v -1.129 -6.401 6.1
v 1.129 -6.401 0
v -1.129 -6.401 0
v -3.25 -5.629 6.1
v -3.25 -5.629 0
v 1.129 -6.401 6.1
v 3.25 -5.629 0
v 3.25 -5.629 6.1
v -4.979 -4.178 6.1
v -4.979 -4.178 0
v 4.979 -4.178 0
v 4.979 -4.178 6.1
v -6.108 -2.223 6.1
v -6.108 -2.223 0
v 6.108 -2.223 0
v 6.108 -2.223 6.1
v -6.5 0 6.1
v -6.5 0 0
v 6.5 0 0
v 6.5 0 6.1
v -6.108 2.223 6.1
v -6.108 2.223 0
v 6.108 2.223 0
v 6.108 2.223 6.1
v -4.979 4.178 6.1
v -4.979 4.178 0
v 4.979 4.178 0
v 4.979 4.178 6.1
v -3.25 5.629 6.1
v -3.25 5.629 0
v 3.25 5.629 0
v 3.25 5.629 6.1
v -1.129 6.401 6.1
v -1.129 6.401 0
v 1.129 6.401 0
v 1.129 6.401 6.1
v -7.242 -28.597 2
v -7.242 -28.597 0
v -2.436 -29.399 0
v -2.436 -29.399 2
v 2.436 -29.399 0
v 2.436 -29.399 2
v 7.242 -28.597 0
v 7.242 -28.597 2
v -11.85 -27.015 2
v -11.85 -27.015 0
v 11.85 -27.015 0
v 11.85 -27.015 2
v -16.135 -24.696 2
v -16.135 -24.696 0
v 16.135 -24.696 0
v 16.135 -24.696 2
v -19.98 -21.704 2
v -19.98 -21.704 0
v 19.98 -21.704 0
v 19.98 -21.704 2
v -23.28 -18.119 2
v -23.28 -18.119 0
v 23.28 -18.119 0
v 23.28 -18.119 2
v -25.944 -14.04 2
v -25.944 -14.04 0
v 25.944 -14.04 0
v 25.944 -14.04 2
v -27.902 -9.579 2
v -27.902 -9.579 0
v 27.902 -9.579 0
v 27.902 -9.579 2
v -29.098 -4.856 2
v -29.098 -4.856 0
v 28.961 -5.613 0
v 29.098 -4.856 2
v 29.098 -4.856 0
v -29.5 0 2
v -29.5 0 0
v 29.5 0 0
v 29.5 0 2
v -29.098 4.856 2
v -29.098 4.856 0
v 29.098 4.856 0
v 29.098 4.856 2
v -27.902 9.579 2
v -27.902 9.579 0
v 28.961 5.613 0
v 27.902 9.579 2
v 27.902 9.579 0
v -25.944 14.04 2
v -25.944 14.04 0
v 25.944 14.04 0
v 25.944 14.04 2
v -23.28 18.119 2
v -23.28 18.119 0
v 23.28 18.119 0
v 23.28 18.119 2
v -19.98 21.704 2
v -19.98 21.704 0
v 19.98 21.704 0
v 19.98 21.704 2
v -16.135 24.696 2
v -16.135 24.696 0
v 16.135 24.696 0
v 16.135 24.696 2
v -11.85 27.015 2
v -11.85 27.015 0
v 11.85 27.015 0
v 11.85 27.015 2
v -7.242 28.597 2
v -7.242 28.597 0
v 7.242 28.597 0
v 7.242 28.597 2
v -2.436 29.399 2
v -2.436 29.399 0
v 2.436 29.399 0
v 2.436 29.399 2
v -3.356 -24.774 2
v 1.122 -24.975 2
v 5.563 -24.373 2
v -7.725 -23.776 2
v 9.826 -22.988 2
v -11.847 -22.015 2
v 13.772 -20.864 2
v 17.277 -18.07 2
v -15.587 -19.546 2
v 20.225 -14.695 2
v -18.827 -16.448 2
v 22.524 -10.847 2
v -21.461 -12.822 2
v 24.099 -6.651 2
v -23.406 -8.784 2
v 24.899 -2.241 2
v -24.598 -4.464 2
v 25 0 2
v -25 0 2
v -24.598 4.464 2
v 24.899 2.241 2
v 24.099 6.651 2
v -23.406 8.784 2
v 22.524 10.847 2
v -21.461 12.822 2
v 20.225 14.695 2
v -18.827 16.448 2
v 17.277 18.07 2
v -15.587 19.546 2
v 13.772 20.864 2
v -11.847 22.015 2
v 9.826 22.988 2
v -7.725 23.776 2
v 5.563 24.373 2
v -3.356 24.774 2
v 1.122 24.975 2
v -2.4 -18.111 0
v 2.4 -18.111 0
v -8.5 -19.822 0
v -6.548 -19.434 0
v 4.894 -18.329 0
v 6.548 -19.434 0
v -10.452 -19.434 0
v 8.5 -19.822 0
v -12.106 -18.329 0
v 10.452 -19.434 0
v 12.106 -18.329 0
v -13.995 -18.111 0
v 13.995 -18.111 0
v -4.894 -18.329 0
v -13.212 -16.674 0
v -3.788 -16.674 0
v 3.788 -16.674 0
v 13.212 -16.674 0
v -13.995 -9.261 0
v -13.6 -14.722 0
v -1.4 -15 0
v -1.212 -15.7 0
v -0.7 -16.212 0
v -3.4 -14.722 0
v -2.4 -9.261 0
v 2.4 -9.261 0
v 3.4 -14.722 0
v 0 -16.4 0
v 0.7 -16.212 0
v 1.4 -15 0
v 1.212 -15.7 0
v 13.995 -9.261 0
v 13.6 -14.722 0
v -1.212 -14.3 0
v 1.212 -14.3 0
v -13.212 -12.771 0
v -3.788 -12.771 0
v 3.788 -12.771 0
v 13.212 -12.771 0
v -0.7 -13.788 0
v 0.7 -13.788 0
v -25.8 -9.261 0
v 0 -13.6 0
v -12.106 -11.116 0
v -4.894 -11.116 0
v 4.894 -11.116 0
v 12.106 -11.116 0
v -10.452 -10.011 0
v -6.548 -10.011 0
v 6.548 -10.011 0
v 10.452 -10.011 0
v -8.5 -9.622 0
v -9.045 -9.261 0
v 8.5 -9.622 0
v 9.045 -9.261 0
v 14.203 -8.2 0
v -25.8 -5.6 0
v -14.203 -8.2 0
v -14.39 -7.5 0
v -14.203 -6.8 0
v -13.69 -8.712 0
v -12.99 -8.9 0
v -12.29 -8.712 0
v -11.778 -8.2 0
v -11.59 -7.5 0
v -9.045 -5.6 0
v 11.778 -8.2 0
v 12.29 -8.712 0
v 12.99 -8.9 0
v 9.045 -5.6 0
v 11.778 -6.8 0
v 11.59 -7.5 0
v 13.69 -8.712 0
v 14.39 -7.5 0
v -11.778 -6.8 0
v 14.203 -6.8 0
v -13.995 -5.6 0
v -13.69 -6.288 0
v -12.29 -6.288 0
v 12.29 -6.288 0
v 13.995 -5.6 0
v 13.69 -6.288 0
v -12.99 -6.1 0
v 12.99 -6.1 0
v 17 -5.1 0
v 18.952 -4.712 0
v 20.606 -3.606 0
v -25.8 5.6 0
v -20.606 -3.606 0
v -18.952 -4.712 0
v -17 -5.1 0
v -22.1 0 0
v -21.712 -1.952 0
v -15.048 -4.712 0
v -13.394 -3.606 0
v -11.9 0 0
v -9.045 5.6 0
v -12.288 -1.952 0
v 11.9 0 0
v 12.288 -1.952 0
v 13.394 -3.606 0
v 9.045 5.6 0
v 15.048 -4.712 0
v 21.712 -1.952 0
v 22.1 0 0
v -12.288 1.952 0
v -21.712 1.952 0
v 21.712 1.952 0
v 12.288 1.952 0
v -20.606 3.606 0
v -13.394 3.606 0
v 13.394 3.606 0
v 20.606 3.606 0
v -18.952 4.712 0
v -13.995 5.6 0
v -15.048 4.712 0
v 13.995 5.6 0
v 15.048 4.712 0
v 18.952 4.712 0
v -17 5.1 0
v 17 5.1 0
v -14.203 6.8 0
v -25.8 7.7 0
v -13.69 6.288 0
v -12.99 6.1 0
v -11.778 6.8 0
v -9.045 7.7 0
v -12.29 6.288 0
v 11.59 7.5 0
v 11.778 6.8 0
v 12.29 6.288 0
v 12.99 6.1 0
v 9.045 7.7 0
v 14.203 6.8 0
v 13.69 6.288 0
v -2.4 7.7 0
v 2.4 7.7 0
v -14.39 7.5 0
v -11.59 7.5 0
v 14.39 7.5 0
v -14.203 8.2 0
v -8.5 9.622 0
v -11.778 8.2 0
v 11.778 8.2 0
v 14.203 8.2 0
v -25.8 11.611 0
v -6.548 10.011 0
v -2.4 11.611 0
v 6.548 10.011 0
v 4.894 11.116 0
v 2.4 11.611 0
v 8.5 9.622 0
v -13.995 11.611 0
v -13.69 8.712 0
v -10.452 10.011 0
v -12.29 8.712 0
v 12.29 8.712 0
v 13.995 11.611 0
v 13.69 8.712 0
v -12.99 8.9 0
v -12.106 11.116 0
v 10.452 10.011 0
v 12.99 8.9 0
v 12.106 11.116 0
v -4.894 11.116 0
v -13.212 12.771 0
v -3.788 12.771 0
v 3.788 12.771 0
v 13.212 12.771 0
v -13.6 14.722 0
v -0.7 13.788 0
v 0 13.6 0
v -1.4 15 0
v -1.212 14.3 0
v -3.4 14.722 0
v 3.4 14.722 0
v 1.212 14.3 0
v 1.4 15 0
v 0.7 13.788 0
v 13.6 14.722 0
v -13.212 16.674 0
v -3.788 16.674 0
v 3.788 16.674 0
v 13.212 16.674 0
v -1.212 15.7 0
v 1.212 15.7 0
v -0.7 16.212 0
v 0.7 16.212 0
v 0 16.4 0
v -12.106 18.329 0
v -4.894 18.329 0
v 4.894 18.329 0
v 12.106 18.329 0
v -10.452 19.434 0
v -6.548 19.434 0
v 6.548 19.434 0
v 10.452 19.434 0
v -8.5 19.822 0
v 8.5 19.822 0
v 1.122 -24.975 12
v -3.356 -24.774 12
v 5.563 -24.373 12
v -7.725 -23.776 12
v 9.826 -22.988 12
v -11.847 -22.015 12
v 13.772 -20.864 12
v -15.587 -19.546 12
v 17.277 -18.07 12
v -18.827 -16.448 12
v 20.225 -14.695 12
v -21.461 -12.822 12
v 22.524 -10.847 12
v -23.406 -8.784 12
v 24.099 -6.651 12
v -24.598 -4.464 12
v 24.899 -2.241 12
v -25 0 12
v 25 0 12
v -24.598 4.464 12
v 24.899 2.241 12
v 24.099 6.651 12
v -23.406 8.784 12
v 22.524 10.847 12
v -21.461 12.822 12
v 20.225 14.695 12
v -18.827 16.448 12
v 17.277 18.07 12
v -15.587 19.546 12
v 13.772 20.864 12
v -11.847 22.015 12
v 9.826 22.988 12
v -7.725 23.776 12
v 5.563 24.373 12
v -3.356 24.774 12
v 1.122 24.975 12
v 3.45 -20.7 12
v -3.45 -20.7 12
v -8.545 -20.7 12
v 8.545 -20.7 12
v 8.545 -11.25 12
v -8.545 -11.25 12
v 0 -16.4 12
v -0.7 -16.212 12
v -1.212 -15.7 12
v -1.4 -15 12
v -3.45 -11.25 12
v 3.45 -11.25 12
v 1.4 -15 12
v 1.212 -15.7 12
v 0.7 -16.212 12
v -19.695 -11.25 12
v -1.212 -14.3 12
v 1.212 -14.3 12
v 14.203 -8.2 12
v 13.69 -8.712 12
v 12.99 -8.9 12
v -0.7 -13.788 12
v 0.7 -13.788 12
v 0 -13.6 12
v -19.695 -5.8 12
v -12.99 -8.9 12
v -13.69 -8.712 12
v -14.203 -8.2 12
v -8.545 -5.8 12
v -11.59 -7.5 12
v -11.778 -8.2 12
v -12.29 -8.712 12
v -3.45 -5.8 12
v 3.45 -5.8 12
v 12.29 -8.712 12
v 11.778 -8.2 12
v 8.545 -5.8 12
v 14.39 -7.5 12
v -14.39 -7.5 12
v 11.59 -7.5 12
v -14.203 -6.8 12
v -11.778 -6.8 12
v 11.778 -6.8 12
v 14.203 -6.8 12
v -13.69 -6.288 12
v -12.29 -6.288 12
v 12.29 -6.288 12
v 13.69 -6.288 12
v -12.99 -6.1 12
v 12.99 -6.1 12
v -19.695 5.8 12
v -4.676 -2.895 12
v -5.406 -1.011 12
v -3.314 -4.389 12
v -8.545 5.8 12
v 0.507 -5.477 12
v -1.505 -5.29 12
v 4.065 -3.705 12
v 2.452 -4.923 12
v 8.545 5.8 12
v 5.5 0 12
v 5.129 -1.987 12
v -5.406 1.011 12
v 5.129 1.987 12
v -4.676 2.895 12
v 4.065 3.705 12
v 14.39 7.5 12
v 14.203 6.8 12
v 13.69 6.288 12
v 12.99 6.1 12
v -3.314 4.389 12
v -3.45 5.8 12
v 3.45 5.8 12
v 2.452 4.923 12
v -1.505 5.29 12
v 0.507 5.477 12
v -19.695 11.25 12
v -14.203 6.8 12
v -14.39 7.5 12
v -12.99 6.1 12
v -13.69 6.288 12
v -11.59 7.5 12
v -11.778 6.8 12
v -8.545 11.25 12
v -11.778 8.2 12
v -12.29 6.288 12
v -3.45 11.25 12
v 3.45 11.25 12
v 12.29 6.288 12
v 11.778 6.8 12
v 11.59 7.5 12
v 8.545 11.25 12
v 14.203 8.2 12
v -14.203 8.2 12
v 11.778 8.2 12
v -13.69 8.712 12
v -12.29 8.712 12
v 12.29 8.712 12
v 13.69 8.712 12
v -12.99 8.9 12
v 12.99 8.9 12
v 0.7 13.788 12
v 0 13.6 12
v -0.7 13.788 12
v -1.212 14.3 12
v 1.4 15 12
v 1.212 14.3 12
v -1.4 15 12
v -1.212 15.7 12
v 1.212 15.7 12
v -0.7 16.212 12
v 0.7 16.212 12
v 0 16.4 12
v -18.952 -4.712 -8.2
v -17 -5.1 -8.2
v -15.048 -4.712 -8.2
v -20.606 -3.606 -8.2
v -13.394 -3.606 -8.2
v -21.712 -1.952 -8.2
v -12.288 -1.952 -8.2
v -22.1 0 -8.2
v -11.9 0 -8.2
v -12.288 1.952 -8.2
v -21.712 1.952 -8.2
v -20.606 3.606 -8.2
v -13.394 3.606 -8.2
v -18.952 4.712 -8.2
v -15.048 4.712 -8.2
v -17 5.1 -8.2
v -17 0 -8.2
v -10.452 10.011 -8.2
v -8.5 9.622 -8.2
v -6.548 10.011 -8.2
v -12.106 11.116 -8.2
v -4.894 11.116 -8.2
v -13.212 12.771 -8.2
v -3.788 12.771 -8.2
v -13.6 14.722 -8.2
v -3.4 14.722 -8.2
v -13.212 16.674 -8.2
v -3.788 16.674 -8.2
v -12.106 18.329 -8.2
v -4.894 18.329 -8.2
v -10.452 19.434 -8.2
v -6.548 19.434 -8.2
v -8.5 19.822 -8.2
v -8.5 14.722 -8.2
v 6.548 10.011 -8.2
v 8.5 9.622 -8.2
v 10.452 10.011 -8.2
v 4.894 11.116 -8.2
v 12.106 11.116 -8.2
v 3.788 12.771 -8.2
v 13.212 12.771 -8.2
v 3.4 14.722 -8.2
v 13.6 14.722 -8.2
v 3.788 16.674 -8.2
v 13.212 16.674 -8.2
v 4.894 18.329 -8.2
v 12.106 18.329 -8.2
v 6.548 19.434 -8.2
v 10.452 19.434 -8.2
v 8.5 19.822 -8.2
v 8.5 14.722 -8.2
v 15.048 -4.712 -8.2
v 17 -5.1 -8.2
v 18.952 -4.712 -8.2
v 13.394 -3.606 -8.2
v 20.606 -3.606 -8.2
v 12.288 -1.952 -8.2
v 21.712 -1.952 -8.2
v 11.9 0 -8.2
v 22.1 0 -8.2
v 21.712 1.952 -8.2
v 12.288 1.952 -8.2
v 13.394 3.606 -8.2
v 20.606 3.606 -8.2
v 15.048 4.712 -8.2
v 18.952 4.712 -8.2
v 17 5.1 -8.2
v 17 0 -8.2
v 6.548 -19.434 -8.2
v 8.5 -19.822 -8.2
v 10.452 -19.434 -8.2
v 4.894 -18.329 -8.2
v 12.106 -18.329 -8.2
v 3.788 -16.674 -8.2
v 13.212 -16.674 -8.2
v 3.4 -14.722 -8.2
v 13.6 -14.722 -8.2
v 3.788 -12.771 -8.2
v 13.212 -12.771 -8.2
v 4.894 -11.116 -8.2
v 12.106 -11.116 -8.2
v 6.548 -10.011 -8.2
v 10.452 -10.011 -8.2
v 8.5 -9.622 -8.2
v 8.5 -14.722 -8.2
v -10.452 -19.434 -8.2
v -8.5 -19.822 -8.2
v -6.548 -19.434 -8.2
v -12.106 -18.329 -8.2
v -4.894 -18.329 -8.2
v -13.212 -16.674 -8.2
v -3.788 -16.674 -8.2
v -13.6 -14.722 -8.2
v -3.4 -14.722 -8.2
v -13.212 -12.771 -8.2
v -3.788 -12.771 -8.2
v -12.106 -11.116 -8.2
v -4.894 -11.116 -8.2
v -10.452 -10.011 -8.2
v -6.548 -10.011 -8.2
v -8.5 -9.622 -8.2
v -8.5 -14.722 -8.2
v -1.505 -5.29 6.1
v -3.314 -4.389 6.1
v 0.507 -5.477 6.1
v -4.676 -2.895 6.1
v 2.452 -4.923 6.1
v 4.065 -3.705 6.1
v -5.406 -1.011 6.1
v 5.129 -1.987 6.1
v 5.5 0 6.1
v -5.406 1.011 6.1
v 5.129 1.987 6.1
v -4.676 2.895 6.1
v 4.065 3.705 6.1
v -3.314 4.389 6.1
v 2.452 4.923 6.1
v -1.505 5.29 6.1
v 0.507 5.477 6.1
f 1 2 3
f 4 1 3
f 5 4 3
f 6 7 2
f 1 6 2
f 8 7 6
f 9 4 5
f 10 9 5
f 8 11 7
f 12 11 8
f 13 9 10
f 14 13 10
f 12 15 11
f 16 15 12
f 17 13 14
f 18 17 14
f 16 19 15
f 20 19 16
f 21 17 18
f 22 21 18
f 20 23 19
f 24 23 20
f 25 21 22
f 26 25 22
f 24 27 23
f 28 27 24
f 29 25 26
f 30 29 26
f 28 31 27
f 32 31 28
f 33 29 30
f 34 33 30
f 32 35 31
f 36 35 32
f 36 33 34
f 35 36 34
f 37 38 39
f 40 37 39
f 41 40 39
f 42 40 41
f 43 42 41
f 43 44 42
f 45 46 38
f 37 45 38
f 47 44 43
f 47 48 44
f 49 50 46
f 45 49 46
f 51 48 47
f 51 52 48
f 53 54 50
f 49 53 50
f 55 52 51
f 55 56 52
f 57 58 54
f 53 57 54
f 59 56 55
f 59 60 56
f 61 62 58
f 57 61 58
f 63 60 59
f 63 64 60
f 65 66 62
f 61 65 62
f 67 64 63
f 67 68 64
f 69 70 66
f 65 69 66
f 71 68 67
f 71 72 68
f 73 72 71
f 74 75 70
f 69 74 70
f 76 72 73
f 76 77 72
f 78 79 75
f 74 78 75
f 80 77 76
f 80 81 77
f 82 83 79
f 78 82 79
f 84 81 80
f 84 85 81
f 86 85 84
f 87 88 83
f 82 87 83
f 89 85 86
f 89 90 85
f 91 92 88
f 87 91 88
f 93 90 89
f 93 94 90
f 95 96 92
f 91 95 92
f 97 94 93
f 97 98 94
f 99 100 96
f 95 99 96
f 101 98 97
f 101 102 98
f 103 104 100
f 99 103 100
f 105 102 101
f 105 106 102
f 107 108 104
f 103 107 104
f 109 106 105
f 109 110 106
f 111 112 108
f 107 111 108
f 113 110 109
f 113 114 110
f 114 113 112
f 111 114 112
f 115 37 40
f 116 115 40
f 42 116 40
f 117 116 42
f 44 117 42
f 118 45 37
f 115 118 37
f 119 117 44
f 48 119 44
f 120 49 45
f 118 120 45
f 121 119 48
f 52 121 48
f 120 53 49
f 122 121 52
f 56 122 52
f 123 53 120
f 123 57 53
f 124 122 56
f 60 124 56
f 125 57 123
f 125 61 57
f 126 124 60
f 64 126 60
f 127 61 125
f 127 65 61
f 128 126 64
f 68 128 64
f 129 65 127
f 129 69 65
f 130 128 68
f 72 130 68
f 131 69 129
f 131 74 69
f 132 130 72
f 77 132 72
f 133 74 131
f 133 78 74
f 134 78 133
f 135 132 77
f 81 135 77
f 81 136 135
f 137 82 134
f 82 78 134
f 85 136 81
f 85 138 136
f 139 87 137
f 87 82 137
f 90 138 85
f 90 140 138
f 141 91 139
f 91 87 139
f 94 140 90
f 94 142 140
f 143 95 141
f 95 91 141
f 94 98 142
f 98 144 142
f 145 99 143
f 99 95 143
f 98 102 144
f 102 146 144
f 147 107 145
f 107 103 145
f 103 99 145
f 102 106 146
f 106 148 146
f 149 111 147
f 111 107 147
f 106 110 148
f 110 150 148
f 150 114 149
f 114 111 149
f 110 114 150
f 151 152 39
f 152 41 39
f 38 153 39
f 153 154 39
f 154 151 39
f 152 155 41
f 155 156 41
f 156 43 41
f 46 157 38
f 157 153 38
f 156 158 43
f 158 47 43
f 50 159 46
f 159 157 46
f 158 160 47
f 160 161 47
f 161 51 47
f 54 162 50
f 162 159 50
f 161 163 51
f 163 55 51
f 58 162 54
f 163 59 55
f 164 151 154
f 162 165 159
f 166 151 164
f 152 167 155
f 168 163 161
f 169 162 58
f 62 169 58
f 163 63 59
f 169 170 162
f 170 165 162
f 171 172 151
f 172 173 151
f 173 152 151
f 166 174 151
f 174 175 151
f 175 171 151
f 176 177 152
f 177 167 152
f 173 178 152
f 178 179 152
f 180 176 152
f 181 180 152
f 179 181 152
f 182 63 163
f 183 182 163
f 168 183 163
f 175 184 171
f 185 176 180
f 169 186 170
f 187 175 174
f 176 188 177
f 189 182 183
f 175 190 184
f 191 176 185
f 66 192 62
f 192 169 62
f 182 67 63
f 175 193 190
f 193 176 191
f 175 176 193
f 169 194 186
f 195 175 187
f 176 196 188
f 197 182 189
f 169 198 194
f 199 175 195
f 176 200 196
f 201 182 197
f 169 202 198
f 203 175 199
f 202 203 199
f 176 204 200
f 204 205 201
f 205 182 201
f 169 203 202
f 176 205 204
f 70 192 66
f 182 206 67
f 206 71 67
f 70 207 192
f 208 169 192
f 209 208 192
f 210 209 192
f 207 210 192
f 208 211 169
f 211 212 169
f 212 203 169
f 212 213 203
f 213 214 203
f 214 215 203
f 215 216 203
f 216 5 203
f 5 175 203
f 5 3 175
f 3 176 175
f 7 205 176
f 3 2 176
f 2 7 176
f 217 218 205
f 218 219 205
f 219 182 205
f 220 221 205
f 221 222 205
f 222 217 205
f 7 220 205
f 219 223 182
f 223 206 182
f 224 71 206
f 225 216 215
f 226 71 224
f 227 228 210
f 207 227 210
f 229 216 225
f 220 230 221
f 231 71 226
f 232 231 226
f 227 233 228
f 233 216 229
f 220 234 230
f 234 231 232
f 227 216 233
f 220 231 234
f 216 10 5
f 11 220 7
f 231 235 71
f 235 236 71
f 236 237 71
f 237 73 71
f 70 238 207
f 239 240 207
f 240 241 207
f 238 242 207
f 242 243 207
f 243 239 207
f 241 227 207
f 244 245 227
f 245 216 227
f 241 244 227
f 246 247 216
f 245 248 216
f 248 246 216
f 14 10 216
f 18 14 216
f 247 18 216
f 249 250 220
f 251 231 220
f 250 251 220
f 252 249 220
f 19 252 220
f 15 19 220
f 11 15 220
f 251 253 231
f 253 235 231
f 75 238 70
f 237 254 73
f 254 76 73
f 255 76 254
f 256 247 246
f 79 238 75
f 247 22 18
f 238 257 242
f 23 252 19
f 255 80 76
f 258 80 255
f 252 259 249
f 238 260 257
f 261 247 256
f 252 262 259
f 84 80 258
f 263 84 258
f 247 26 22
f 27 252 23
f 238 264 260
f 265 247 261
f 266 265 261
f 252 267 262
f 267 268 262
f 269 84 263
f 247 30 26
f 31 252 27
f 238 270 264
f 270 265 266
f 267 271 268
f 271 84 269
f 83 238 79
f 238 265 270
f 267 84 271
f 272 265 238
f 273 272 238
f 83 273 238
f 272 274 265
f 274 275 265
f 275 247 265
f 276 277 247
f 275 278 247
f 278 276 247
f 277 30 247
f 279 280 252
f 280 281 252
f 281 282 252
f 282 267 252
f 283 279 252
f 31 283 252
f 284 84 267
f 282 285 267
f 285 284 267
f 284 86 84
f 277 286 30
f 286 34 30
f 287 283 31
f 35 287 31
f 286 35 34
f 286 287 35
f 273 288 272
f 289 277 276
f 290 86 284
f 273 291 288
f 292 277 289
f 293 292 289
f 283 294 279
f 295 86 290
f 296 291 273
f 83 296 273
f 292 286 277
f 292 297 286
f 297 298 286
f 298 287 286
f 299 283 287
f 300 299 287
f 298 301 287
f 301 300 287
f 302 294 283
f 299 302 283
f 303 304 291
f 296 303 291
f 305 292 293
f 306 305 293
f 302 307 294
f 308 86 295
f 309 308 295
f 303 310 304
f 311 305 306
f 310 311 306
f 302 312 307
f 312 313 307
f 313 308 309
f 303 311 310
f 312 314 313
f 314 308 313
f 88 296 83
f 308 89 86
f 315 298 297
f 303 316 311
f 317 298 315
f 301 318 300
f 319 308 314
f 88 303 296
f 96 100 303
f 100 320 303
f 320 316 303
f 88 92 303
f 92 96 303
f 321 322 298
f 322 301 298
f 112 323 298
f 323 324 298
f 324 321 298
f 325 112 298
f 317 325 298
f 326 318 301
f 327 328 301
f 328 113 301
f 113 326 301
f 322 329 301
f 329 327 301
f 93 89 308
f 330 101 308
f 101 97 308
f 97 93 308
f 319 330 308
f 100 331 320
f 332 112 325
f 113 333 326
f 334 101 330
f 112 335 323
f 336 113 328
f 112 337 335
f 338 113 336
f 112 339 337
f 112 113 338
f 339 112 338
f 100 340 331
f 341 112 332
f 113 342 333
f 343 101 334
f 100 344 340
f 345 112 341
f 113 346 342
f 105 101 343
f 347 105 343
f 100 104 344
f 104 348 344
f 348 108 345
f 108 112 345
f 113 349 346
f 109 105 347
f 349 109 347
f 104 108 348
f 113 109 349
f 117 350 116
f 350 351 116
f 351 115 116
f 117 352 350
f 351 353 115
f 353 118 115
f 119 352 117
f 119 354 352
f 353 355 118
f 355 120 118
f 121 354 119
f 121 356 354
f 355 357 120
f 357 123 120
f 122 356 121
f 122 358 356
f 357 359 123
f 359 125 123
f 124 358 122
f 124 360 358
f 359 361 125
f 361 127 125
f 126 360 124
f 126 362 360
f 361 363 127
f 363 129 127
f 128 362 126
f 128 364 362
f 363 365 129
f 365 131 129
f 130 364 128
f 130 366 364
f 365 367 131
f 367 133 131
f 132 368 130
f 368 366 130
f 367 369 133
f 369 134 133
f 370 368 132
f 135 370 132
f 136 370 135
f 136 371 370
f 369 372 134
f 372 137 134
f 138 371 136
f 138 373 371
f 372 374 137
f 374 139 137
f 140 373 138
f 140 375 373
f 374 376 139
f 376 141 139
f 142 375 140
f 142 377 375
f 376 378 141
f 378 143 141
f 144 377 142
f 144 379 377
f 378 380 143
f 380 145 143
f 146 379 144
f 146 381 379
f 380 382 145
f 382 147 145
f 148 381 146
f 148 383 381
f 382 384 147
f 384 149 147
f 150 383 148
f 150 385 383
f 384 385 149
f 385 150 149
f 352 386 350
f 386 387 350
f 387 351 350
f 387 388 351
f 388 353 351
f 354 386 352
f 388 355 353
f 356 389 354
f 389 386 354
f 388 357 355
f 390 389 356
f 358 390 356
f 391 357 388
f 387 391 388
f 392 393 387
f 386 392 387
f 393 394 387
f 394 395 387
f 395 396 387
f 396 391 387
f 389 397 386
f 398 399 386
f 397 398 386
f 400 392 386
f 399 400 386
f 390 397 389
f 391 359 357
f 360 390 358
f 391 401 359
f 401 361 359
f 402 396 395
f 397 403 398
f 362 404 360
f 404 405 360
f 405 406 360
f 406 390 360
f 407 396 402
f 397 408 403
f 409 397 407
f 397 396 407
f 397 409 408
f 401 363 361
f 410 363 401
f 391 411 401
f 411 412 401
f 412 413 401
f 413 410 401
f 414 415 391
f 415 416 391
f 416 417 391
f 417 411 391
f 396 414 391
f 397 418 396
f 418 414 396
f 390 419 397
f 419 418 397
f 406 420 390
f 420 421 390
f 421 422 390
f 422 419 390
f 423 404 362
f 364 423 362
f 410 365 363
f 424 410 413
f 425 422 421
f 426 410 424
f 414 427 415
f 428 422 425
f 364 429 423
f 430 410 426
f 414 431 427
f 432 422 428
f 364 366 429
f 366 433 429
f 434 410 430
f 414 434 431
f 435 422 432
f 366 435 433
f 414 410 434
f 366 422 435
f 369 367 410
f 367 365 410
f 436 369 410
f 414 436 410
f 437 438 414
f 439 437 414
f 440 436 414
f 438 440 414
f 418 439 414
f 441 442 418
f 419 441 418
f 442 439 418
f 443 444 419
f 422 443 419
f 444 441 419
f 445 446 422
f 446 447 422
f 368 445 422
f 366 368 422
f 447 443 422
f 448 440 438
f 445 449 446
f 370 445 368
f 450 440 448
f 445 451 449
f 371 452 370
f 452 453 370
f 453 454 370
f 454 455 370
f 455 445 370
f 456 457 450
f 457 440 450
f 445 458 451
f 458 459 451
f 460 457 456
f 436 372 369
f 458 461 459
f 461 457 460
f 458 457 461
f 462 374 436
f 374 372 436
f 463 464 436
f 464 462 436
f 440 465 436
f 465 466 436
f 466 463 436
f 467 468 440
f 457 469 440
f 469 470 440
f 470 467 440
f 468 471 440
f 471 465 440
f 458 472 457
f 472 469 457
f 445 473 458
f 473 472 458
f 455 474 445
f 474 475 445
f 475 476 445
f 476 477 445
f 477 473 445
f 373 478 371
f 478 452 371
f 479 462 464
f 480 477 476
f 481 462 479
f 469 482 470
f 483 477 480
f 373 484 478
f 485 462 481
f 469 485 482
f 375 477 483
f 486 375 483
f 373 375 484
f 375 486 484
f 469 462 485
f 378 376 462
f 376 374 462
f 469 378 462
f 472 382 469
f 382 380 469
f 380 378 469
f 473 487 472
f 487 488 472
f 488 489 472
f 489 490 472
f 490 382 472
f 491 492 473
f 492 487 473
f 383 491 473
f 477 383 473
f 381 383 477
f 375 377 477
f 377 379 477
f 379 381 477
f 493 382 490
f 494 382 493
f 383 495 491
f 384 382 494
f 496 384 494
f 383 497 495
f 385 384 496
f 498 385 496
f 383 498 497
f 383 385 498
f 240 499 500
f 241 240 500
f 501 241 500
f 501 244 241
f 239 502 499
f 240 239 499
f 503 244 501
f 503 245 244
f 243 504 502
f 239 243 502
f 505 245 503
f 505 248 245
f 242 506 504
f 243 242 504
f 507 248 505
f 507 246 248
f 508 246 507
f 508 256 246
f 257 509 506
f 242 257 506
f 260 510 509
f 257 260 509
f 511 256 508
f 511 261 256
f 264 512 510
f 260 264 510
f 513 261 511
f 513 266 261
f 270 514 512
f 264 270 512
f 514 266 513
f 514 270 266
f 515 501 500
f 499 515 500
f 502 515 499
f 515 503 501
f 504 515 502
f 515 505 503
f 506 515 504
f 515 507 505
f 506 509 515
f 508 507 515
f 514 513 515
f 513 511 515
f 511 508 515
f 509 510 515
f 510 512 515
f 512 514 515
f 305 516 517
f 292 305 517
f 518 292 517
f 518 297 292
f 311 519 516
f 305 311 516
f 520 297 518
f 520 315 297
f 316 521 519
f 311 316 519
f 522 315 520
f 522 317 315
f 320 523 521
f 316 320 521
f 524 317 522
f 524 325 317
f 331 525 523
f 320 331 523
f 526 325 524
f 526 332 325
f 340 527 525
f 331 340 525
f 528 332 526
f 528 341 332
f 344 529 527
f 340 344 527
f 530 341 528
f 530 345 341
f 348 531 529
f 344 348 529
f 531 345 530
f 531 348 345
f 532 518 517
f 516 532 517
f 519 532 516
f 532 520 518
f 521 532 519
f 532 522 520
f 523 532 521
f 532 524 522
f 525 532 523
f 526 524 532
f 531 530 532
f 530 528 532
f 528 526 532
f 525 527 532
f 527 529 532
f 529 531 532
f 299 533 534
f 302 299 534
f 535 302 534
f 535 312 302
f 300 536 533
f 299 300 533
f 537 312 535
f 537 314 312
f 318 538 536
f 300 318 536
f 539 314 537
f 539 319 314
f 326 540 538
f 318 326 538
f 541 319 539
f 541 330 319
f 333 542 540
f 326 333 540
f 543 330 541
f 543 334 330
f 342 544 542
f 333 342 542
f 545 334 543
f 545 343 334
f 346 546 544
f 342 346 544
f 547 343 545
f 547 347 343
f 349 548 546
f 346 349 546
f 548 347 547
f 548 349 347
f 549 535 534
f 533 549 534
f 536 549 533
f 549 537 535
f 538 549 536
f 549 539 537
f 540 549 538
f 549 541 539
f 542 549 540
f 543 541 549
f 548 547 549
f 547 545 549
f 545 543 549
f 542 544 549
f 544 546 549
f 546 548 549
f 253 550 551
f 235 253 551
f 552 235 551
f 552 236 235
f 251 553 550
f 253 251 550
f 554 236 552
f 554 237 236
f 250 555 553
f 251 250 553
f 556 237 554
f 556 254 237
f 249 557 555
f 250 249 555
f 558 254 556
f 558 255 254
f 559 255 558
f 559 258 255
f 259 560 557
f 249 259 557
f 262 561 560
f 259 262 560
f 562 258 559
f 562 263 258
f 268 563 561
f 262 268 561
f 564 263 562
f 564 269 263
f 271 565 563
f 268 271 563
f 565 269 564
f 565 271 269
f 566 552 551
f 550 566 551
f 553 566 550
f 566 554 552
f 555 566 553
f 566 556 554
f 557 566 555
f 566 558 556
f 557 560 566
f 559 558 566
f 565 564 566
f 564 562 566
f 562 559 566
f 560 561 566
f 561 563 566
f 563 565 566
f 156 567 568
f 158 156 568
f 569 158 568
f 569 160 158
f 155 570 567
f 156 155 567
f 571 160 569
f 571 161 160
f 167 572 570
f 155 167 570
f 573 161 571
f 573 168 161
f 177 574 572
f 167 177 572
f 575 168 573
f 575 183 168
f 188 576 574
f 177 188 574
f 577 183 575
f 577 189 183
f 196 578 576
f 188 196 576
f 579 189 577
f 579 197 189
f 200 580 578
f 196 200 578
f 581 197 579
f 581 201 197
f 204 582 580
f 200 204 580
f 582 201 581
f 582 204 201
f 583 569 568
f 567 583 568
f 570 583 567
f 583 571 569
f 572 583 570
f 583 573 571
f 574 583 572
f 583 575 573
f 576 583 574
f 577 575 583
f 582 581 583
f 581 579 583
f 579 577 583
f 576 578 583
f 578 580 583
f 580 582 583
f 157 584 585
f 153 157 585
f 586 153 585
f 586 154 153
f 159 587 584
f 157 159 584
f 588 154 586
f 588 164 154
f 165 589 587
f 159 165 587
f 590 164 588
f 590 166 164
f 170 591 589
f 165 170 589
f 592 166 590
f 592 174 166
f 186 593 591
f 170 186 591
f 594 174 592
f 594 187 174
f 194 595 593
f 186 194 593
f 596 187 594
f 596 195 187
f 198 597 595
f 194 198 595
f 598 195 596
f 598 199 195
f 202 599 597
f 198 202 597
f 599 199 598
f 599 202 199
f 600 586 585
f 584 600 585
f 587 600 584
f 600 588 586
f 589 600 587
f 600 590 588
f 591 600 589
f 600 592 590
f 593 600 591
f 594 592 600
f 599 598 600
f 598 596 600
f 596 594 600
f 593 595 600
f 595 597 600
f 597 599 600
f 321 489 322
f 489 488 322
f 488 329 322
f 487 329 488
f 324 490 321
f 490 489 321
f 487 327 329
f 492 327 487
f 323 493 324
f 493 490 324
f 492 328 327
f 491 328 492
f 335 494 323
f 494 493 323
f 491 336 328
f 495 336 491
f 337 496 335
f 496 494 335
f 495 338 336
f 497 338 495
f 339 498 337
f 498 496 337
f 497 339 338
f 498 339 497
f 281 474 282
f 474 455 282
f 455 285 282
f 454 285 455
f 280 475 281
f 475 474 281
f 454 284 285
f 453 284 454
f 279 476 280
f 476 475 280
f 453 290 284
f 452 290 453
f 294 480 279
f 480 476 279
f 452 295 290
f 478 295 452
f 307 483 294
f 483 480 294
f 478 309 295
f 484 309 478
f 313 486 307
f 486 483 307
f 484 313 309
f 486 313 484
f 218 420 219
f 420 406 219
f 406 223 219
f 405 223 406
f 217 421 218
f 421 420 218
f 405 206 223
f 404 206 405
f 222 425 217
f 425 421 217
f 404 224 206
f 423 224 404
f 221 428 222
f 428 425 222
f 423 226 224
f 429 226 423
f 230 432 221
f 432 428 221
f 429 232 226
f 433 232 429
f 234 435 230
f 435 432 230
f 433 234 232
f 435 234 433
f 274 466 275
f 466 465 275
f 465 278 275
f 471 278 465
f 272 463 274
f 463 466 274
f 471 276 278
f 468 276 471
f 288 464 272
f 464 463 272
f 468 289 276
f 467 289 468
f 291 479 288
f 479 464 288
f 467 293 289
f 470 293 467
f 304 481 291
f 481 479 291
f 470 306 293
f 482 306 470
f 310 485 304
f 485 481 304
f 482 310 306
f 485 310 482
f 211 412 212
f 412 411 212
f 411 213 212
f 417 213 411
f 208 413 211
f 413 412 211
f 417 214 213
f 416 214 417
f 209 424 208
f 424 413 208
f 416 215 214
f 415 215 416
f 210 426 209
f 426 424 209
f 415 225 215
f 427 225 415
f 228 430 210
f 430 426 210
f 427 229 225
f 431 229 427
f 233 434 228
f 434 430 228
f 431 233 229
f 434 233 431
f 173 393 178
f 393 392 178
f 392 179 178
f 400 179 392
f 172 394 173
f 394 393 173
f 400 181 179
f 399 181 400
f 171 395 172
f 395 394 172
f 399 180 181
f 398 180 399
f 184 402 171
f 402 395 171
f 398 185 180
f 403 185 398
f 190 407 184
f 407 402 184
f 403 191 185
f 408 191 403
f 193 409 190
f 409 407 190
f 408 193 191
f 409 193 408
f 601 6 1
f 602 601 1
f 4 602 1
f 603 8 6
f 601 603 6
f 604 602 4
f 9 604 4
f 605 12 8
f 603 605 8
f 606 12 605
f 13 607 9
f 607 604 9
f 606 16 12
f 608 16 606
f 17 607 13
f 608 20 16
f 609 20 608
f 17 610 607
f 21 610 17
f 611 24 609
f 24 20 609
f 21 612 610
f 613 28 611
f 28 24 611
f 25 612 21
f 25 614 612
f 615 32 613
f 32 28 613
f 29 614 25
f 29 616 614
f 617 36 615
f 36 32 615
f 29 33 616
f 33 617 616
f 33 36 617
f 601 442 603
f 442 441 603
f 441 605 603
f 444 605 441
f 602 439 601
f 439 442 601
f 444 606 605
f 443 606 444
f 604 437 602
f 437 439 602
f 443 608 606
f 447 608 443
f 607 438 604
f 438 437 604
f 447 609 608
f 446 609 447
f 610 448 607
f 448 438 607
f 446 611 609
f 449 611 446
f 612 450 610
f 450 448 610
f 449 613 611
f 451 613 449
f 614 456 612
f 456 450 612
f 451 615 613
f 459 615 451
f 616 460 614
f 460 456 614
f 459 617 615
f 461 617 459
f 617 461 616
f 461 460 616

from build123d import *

# Parameters (mm, degrees)
SKETCH_2_R          = 29.5
EXTRUDE_1_DEPTH     = 2
SKETCH_3_R          = 25
EXTRUDE_2_DEPTH     = 10
SKETCH_4_R          = 5.1
EXTRUDE_3_DEPTH     = 8.2
SKETCH_7_R          = 1.4
CUT_EXTRUDE_3_DEPTH = 12
CUT_EXTRUDE_4_REACH = 45.411
SKETCH_9_R          = 6.5
EXTRUDE_START       = -5.9
SKETCH_10_R         = 6.5
SKETCH_10_R_2       = 5.5
EXTRUDE_4_DEPTH     = 5.9


with BuildPart() as part:
    # 草图2 → 凸台-拉伸1 (new body)
    with BuildSketch(Plane.XY):
        Circle(SKETCH_2_R)
    extrude(amount=EXTRUDE_1_DEPTH)

    # 草图3 → 凸台-拉伸2 (add)
    with BuildSketch(Plane.XY.offset(2)):
        Circle(SKETCH_3_R)
    extrude(amount=EXTRUDE_2_DEPTH)

    # 草图4 → 凸台-拉伸3 (add)
    with BuildSketch(Plane(origin=(0, 0, 0), x_dir=(-1, 0, 0), z_dir=(0, 0, -1))):
        with Locations(Location((17, 0, 0), (0, 0, 180))):
            Circle(SKETCH_4_R)
        with Locations(Location((8.5, -14.722431864, 0), (0, 0, 180))):
            Circle(SKETCH_4_R)
        with Locations(Location((-8.5, -14.722431864, 0), (0, 0, 180))):
            Circle(SKETCH_4_R)
        with Locations(Location((-17, 0, 0), (0, 0, 180))):
            Circle(SKETCH_4_R)
        with Locations(Location((-8.5, 14.722431864, 0), (0, 0, 180))):
            Circle(SKETCH_4_R)
        with Locations(Location((8.5, 14.722431864, 0), (0, 0, 180))):
            Circle(SKETCH_4_R)
    extrude(amount=EXTRUDE_3_DEPTH)

    # 草图7 → 切除-拉伸3 (cut)
    with BuildSketch(Plane.XY.offset(12)):
        with Locations((12.990381057, 7.5)):
            Circle(SKETCH_7_R)
        with Locations((12.990381057, -7.5)):
            Circle(SKETCH_7_R)
        with Locations((0, -15)):
            Circle(SKETCH_7_R)
        with Locations((-12.990381057, -7.5)):
            Circle(SKETCH_7_R)
        with Locations((-12.990381057, 7.5)):
            Circle(SKETCH_7_R)
        with Locations((0, 15)):
            Circle(SKETCH_7_R)
    extrude(amount=-CUT_EXTRUDE_3_DEPTH, mode=Mode.SUBTRACT)

    # 草图9 → 切除-拉伸4 (cut, up to next)
    with BuildSketch(Plane(origin=(0, 0, 0), x_dir=(-1, 0, 0), z_dir=(0, 0, -1)), mode=Mode.PRIVATE) as cut_extrude_4_sk1:
        Circle(SKETCH_9_R)
    cut_extrude_4_tool1 = extrude(cut_extrude_4_sk1.sketch, amount=-CUT_EXTRUDE_4_REACH, mode=Mode.PRIVATE) & part.part
    add(cut_extrude_4_tool1.solids().sort_by_distance((0, 0, 0))[0], mode=Mode.SUBTRACT)

    # 草图10 → 凸台-拉伸4 (add)
    with BuildSketch(Plane.XY.offset(12).offset(EXTRUDE_START)):
        with Locations(Location((0, 0, 0), (0, 0, 180))):
            Circle(SKETCH_10_R)
        Circle(SKETCH_10_R_2, mode=Mode.SUBTRACT)
    extrude(amount=EXTRUDE_4_DEPTH)


solid = part.part
